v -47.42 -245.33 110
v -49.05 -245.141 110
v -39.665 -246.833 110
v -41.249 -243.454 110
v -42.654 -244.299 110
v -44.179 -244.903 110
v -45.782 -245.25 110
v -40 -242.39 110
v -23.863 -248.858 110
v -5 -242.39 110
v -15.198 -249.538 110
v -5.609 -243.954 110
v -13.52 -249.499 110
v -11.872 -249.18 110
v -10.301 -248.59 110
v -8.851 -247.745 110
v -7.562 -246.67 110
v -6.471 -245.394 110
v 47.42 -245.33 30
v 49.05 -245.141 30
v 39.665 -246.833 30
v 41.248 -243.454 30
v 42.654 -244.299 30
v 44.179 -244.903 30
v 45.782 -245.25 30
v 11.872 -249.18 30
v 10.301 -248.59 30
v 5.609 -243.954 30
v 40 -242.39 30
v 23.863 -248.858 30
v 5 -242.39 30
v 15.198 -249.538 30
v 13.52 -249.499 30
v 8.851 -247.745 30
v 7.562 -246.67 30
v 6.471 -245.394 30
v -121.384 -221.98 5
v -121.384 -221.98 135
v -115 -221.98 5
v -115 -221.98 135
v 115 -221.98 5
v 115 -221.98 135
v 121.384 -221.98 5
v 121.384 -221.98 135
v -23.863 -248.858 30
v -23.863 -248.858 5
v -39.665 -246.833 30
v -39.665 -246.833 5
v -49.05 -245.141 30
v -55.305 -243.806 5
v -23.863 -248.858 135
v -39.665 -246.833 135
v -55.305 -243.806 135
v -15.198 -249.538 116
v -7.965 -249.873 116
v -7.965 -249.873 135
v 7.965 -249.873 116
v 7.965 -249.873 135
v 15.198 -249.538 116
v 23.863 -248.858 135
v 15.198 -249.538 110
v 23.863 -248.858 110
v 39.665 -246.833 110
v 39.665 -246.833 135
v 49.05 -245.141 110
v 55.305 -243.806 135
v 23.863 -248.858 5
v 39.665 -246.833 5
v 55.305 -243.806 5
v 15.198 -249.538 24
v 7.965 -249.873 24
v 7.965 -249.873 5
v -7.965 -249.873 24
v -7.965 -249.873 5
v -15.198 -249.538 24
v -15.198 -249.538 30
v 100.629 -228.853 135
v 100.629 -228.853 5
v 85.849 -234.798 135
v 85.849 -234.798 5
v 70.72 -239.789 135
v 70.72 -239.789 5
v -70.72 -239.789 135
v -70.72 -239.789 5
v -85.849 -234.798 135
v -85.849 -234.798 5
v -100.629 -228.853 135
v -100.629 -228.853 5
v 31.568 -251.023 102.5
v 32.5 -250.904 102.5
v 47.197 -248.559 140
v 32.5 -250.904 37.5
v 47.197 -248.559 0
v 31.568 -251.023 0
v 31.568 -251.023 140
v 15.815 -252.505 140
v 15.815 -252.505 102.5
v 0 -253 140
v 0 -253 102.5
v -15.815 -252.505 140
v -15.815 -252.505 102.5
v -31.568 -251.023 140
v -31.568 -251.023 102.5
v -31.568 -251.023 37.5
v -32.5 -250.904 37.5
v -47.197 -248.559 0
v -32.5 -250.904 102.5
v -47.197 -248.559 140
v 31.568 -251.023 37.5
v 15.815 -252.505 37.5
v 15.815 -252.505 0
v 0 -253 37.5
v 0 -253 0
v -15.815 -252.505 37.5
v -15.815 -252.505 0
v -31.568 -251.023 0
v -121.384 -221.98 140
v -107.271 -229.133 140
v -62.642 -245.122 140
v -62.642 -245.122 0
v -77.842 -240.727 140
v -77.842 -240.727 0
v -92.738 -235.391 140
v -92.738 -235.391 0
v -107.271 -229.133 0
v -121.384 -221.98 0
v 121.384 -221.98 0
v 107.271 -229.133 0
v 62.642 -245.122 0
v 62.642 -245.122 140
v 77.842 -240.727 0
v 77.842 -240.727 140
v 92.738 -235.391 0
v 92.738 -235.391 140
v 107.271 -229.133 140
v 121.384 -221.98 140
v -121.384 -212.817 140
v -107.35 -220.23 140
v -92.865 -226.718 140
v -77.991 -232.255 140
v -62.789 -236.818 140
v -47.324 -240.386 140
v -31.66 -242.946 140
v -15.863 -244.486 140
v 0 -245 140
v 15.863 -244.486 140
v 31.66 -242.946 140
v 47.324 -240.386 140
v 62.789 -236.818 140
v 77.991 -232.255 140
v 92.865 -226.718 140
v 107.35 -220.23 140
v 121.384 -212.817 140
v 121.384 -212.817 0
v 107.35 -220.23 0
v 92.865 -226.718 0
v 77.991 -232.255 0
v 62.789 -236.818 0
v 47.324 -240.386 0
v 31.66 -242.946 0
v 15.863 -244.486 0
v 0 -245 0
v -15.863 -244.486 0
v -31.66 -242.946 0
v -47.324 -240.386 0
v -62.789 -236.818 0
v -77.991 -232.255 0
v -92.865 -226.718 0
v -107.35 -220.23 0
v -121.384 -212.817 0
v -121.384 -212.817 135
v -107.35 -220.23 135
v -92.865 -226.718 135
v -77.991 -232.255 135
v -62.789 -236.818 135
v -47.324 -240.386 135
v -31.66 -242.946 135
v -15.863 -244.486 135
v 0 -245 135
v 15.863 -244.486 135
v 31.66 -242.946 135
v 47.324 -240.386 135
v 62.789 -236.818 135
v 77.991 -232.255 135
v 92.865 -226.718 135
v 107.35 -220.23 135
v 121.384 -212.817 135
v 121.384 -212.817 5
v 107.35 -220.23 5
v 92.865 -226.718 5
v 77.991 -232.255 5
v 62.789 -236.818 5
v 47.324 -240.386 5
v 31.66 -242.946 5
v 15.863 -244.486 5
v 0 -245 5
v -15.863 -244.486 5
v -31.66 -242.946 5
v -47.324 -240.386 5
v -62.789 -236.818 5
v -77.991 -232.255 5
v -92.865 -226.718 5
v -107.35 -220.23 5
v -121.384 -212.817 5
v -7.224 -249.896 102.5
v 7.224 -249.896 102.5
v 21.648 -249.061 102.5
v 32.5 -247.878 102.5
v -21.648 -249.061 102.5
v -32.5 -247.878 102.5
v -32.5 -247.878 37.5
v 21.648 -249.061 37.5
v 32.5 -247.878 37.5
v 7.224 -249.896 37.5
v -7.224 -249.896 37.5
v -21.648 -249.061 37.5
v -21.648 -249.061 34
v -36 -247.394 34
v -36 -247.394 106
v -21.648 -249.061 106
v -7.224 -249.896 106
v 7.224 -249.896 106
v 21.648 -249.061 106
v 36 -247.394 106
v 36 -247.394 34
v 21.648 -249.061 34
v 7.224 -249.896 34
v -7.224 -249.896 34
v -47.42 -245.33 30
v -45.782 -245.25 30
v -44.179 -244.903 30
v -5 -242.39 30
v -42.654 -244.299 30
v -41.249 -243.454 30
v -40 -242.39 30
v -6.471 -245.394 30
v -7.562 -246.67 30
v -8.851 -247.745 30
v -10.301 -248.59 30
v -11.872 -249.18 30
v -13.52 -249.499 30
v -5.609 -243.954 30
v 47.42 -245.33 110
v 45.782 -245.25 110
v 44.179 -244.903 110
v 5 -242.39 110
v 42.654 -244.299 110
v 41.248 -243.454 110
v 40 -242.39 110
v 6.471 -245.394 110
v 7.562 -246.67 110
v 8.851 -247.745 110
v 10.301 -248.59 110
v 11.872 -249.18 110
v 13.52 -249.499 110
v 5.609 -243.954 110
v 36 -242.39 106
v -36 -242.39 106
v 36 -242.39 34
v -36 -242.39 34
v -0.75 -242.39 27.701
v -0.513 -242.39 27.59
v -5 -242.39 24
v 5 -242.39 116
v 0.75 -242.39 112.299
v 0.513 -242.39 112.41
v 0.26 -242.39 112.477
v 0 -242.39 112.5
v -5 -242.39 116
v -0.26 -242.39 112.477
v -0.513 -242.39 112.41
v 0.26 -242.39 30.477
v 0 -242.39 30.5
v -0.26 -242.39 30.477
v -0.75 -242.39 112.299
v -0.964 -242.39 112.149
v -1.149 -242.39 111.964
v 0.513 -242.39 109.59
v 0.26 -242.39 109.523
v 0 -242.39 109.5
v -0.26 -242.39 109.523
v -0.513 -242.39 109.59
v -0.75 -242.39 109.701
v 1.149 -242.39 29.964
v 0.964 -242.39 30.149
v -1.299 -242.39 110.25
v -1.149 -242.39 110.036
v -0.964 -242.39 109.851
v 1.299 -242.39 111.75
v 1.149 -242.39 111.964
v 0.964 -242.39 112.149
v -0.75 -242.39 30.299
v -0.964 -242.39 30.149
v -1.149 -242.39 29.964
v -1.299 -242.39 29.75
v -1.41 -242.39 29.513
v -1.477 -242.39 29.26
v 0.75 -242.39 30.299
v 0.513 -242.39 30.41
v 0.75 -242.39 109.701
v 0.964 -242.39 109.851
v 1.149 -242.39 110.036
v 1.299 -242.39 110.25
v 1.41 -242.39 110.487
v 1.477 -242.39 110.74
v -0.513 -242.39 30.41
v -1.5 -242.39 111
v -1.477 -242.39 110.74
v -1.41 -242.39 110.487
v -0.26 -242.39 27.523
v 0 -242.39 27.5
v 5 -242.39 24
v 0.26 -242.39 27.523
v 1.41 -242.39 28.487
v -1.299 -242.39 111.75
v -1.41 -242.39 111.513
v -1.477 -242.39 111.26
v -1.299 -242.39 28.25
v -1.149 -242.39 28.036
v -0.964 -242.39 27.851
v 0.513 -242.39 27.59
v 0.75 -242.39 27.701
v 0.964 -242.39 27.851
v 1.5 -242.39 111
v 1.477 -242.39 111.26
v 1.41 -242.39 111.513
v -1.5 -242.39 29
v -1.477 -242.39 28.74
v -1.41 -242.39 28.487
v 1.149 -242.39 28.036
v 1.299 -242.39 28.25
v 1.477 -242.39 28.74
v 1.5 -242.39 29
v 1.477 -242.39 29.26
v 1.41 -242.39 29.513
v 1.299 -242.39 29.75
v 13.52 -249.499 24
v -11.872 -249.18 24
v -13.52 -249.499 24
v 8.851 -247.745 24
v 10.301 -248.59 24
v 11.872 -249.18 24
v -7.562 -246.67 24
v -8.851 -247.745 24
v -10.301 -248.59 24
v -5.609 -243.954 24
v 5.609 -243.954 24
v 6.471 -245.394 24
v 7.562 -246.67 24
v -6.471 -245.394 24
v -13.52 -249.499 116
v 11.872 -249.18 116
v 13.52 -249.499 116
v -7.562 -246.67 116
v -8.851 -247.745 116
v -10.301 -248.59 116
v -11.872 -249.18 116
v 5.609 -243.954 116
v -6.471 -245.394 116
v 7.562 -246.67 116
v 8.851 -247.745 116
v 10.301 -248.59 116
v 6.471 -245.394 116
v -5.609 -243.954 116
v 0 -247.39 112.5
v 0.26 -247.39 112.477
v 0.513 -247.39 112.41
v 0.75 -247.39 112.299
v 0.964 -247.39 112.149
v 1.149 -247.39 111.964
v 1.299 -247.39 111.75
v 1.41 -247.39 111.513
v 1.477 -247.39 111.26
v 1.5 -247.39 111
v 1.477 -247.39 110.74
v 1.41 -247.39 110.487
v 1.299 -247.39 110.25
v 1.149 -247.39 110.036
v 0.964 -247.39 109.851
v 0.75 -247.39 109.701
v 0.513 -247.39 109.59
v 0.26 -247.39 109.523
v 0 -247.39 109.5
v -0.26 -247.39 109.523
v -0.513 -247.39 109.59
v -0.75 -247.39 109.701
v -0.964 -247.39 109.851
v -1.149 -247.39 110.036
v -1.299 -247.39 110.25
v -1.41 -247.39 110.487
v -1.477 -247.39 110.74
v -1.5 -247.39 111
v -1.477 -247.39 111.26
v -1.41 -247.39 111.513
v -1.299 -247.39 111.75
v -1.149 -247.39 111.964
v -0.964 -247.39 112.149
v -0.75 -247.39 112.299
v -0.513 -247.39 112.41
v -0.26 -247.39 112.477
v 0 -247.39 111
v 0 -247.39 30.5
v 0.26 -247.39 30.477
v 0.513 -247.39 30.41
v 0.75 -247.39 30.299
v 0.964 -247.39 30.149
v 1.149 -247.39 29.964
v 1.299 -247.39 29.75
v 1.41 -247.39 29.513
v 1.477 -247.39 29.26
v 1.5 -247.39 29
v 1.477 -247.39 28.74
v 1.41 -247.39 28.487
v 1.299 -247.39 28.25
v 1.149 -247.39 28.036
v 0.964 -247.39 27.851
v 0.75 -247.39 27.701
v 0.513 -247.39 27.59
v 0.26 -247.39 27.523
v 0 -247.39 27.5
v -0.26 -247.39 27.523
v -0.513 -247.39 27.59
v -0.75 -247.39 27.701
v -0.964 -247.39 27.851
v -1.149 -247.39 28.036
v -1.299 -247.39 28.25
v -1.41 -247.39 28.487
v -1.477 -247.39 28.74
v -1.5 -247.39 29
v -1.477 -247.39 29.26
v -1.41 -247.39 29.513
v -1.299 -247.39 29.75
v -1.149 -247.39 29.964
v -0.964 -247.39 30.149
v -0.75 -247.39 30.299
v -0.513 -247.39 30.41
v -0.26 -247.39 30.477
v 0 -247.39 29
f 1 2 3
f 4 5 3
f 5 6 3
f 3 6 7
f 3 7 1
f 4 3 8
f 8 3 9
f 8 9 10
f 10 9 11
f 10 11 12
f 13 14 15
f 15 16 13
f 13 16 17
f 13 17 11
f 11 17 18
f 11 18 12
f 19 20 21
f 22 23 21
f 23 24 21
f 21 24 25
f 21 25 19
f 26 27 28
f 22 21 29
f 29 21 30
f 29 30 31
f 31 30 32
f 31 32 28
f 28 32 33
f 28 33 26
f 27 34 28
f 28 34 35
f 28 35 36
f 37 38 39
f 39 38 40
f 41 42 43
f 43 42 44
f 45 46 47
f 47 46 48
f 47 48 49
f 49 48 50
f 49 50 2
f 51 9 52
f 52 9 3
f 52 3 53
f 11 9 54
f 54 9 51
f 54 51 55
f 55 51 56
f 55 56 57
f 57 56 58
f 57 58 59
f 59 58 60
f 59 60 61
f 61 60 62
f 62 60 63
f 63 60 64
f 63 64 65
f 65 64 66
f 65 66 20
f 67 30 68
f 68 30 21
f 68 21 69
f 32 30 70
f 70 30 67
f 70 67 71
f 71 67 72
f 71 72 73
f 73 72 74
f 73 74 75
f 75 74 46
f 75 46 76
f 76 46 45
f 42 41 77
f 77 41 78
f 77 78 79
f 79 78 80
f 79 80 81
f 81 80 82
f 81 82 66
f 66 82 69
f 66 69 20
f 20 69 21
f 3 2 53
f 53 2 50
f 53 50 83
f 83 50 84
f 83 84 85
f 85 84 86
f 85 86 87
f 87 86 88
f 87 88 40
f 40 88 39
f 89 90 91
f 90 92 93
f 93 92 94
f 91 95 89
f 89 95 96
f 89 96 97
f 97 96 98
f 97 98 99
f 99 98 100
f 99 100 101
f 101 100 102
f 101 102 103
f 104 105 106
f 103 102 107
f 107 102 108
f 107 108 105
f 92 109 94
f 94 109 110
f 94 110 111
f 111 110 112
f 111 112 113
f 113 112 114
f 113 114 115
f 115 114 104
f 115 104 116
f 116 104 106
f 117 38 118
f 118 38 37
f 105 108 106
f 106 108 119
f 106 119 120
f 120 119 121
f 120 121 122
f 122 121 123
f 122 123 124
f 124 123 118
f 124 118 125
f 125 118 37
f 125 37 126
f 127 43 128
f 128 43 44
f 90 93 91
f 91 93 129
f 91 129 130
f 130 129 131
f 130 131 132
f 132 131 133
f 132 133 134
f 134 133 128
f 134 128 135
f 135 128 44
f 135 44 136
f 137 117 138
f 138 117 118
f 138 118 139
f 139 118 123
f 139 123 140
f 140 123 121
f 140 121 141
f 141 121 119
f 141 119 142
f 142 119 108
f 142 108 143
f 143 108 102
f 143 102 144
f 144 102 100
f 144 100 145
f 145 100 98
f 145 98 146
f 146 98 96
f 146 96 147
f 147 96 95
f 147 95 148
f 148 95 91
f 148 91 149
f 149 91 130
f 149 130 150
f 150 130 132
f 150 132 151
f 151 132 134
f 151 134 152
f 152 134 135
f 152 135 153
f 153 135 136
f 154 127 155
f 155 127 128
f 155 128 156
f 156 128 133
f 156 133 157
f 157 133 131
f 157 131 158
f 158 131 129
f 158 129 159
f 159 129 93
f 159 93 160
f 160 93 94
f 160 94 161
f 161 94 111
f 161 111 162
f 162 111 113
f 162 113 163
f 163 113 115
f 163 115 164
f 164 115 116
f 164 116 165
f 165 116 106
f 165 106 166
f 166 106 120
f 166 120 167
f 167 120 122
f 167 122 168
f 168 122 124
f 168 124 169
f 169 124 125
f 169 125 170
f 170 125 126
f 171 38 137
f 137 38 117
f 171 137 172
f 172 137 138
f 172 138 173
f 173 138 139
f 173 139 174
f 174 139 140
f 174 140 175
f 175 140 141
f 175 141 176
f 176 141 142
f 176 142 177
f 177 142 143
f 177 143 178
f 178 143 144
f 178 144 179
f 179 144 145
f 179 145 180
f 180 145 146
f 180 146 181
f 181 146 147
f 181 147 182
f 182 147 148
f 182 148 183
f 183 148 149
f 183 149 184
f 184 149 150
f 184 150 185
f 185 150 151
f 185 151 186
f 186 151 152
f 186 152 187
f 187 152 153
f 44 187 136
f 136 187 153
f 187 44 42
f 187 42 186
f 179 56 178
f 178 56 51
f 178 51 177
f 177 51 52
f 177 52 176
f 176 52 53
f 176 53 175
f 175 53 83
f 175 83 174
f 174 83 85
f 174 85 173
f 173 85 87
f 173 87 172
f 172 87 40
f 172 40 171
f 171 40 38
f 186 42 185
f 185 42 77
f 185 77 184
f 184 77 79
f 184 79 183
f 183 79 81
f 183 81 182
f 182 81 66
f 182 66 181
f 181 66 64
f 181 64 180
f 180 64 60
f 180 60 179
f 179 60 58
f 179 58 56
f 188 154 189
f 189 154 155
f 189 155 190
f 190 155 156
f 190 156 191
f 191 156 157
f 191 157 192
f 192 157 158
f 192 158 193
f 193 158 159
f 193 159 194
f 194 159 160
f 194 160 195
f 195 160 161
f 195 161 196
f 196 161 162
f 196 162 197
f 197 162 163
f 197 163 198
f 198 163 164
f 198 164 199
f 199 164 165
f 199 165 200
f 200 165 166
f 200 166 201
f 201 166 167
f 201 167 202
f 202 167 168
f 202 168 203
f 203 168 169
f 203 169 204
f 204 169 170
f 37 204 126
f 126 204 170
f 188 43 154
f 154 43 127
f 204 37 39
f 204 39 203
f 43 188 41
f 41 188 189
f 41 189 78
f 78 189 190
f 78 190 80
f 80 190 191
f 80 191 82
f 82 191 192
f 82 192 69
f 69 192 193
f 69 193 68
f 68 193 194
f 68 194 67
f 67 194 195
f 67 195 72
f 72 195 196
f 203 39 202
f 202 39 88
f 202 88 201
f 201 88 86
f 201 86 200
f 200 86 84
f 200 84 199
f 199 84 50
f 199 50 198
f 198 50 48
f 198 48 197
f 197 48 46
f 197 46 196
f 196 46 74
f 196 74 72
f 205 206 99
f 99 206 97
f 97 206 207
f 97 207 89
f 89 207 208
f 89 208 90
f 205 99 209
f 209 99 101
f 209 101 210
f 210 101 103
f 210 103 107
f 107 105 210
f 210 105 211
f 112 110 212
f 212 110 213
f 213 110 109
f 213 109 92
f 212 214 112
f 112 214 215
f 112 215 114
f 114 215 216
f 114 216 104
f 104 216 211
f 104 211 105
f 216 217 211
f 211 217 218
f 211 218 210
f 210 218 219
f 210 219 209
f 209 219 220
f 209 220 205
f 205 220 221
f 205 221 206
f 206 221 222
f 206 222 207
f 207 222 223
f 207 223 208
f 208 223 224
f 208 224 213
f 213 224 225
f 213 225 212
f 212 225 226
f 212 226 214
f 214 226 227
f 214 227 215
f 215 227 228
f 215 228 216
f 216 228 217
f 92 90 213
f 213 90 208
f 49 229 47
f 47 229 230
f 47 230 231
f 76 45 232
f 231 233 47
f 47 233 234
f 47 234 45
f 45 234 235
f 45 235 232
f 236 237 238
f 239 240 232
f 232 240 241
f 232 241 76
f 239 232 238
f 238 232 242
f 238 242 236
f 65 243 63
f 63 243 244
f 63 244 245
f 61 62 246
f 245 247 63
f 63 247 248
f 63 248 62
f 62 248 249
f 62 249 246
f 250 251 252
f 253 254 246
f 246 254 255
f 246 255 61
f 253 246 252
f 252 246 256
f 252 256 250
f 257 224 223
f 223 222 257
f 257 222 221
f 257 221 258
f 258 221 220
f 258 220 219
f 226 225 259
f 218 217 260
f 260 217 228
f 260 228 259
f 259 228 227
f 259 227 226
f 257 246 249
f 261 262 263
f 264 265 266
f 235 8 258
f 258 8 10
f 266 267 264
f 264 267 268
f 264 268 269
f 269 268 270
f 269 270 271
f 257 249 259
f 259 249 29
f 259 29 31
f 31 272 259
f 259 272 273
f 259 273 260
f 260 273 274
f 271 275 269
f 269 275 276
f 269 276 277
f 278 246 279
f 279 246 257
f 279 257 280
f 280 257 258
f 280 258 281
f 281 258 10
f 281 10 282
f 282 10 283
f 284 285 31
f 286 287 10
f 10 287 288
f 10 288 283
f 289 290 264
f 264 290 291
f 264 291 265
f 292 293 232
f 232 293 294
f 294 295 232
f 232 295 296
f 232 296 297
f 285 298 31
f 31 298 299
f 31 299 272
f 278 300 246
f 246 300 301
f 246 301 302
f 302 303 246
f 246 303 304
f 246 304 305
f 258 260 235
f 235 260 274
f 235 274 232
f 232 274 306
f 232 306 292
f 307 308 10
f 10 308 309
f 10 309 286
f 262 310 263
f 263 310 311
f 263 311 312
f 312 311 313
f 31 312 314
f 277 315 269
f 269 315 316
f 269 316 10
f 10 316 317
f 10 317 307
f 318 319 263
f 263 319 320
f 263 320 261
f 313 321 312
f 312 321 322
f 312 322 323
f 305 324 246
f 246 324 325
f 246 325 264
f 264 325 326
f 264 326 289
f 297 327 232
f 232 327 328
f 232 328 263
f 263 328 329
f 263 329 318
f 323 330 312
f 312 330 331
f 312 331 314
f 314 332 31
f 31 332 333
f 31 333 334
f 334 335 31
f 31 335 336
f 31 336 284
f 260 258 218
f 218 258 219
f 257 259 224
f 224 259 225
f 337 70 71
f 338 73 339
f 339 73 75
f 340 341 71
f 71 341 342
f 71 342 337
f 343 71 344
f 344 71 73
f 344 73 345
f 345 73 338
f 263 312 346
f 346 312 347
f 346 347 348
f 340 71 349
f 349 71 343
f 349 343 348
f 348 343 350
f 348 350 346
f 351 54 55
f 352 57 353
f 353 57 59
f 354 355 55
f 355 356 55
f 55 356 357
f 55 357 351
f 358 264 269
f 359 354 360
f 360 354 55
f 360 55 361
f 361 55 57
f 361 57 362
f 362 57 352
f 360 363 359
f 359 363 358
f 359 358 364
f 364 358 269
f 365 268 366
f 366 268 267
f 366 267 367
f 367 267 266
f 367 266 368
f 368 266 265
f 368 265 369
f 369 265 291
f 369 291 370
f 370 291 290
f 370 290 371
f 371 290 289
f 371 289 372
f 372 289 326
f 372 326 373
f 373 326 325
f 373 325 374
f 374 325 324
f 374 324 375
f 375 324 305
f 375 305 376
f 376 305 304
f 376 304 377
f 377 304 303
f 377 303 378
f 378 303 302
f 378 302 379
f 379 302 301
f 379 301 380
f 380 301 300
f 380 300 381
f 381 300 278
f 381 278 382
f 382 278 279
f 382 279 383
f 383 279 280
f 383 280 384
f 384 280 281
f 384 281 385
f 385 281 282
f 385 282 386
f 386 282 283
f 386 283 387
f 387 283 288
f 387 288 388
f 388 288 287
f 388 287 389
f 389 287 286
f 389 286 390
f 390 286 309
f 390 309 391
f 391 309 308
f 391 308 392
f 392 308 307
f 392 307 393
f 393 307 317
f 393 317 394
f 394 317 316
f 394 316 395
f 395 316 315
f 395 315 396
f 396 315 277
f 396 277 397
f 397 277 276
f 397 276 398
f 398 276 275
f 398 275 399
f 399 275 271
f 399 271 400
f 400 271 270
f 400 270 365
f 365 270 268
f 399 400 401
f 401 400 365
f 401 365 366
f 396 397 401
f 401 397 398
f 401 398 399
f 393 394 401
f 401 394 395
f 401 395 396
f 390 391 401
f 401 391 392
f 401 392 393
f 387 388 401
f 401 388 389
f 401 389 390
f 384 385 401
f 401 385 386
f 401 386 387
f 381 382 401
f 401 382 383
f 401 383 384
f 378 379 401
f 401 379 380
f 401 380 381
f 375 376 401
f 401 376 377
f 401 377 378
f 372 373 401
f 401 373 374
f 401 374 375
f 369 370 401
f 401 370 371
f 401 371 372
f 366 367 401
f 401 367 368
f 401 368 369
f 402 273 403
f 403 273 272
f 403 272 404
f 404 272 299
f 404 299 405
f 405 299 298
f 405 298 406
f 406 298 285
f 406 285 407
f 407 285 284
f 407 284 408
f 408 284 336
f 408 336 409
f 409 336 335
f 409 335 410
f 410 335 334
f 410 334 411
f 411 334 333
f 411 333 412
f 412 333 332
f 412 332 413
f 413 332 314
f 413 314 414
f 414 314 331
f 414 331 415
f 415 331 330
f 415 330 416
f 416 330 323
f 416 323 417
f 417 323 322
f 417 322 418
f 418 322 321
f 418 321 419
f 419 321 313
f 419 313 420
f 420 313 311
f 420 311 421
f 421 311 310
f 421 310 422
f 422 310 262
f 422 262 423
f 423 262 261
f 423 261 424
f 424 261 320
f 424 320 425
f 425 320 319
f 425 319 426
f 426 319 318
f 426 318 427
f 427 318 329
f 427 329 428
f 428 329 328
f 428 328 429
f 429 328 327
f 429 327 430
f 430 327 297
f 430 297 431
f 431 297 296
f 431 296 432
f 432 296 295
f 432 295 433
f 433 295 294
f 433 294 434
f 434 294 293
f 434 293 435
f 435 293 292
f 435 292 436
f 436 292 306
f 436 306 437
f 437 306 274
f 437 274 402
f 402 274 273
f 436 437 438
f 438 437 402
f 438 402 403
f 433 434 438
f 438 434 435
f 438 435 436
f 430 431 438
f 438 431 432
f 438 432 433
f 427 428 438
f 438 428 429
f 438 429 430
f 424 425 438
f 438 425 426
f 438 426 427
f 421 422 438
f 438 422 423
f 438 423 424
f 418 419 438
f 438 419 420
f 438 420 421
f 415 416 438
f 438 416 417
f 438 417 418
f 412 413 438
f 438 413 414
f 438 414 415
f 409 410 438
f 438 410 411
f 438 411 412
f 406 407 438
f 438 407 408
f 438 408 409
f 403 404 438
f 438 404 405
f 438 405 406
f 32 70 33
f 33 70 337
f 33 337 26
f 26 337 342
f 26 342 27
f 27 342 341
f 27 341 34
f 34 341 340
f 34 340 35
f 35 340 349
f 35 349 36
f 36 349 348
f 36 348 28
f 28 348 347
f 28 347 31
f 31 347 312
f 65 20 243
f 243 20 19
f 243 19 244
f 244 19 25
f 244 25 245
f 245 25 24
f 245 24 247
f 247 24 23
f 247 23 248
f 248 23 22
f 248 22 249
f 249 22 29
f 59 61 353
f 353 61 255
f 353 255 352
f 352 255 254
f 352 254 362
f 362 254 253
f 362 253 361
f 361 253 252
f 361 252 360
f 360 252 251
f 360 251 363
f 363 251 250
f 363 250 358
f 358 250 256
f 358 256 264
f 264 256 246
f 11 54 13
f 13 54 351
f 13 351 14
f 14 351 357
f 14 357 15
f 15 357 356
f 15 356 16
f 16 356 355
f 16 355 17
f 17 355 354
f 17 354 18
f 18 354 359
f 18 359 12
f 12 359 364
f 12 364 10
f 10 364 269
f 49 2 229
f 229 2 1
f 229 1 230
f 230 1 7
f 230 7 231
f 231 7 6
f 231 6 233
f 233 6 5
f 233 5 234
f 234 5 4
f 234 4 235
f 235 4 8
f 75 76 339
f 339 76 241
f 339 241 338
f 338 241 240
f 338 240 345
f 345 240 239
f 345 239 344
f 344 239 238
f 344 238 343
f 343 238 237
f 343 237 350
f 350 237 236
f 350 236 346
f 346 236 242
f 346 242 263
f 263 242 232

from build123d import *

# Parameters (mm, degrees)
ESTRUSIONE_ESTRUSIONE1_DEPTH = 140
ESTRUSIONE_ESTRUSIONE2_START = -5
ESTRUSIONE_ESTRUSIONE2_DEPTH = 5
ESTRUSIONE_ESTRUSIONE3_DEPTH = 5
SCHIZZO4_W                   = 65
SCHIZZO4_H                   = 65
TAGLIO_ESTRUSIONE1_DEPTH     = 190.601391721
SCHIZZO6_W                   = 80
SCHIZZO6_H                   = 80
SCHIZZO6_W_2                 = 72
SCHIZZO6_H_2                 = 72
ESTRUSIONE_ESTRUSIONE5_DEPTH = 10.61
SCHIZZO8_W                   = 10
SCHIZZO8_H                   = 6
ESTRUSIONE_ESTRUSIONE6_DEPTH = 8
SCHIZZO9_R                   = 1.5
TAGLIO_ESTRUSIONE2_DEPTH     = 5
TAGLIO_ESTRUSIONE3_DEPTH     = 314.596874984
RACCORDO1_R                  = 10


with BuildPart() as part:
    # Schizzo1 → Estrusione-Estrusione1 (new body)
    with BuildSketch(Plane.XY):
        with BuildLine():
            Line((121.383689184, -221.979728804), (115, -221.979728804))
            ThreePointArc((115, -221.979728804), (0, -250), (-115, -221.979728804))
            Line((-115, -221.979728804), (-121.383689184, -221.979728804))
            ThreePointArc((-121.383689184, -221.979728804), (0, -253), (121.383689184, -221.979728804))
        make_face()
    extrude(amount=ESTRUSIONE_ESTRUSIONE1_DEPTH)

    # Schizzo2 → Estrusione-Estrusione2 (add)
    with BuildSketch(Plane.XY.offset(140).offset(ESTRUSIONE_ESTRUSIONE2_START)):
        with BuildLine():
            Line((-121.383689184, -218.554341069), (-121.383689184, -221.979728804))
            Line((-121.383689184, -221.979728804), (-115, -221.979728804))
            ThreePointArc((-115, -221.979728804), (-118.204253089, -220.290159906), (-121.383689184, -218.554341069))
        make_face()
        with BuildLine():
            Line((-121.383689184, -212.816822643), (-121.383689184, -218.554341069))
            ThreePointArc((-121.383689184, -218.554341069), (-118.204253089, -220.290159906), (-115, -221.979728804))
            ThreePointArc((-115, -221.979728804), (0, -250), (115, -221.979728804))
            ThreePointArc((115, -221.979728804), (118.204253089, -220.290159906), (121.383689184, -218.554341069))
            Line((121.383689184, -218.554341069), (121.383689184, -212.816822643))
            ThreePointArc((121.383689184, -212.816822643), (0, -245), (-121.383689184, -212.816822643))
        make_face()
        with BuildLine():
            Line((115, -221.979728804), (121.383689184, -221.979728804))
            Line((121.383689184, -221.979728804), (121.383689184, -218.554341069))
            ThreePointArc((121.383689184, -218.554341069), (118.204253089, -220.290159906), (115, -221.979728804))
        make_face()
    extrude(amount=ESTRUSIONE_ESTRUSIONE2_DEPTH)

    # Schizzo3 → Estrusione-Estrusione3 (add)
    with BuildSketch(Plane(origin=(0, 0, 0), x_dir=(-1, 0, 0), z_dir=(0, 0, -1))):
        with BuildLine():
            Line((-121.383689184, -212.816822643), (-121.383689184, -218.554341069))
            ThreePointArc((-121.383689184, -218.554341069), (-118.204253089, -220.290159906), (-115, -221.979728804))
            ThreePointArc((-115, -221.979728804), (0, -250), (115, -221.979728804))
            ThreePointArc((115, -221.979728804), (118.204253089, -220.290159906), (121.383689184, -218.554341069))
            Line((121.383689184, -218.554341069), (121.383689184, -212.816822643))
            ThreePointArc((121.383689184, -212.816822643), (0, -245), (-121.383689184, -212.816822643))
        make_face()
        with BuildLine():
            Line((115, -221.979728804), (121.383689184, -221.979728804))
            Line((121.383689184, -221.979728804), (121.383689184, -218.554341069))
            ThreePointArc((121.383689184, -218.554341069), (118.204253089, -220.290159906), (115, -221.979728804))
        make_face()
        with BuildLine():
            Line((-121.383689184, -218.554341069), (-121.383689184, -221.979728804))
            Line((-121.383689184, -221.979728804), (-115, -221.979728804))
            ThreePointArc((-115, -221.979728804), (-118.204253089, -220.290159906), (-121.383689184, -218.554341069))
        make_face()
    extrude(amount=-ESTRUSIONE_ESTRUSIONE3_DEPTH)

    # Schizzo4 → Taglio-Estrusione1 (cut, through all)
    with BuildSketch(Plane(origin=(0, -253, 0), x_dir=(-1, 0, 0), z_dir=(0, -1, 0))):
        with Locations((0, -70)):
            Rectangle(SCHIZZO4_W, SCHIZZO4_H)
    extrude(amount=-TAGLIO_ESTRUSIONE1_DEPTH, mode=Mode.SUBTRACT)

    # Schizzo6 → Estrusione-Estrusione5 (add)
    with BuildSketch(Plane(origin=(0, -253, 0), x_dir=(-1, 0, 0), z_dir=(0, -1, 0))):
        with Locations((0, -70)):
            Rectangle(SCHIZZO6_W, SCHIZZO6_H)
        with Locations((0, -70)):
            Rectangle(SCHIZZO6_W_2, SCHIZZO6_H_2, mode=Mode.SUBTRACT)
    extrude(amount=-ESTRUSIONE_ESTRUSIONE5_DEPTH)

    # Schizzo8 → Estrusione-Estrusione6 (add)
    with BuildSketch(Plane(origin=(0, -242.39, 0), x_dir=(1, 0, 0), z_dir=(0, 1, 0))):
        with Locations((0, -27)):
            Rectangle(SCHIZZO8_W, SCHIZZO8_H)
        with Locations((0, -113)):
            Rectangle(SCHIZZO8_W, SCHIZZO8_H)
    extrude(amount=-ESTRUSIONE_ESTRUSIONE6_DEPTH)

    # Schizzo9 → Taglio-Estrusione2 (cut)
    with BuildSketch(Plane(origin=(0, -242.39, 0), x_dir=(1, 0, 0), z_dir=(0, 1, 0))):
        with Locations(Location((0, -29, 0), (0, 0, 270))):
            Circle(SCHIZZO9_R)
        with Locations(Location((0, -111, 0), (0, 0, 270))):
            Circle(SCHIZZO9_R)
    extrude(amount=-TAGLIO_ESTRUSIONE2_DEPTH, mode=Mode.SUBTRACT)

    # Schizzo10 → Taglio-Estrusione3 (cut, through all)
    with BuildSketch(Plane(origin=(0, 0, 0), x_dir=(-1, 0, 0), z_dir=(0, 0, -1))):
        with BuildLine():
            Line((-121.383689184, -295.114305534), (125.369855002, -295.114305534))
            Line((125.369855002, -295.114305534), (121.383689184, -221.979728804))
            ThreePointArc((121.383689184, -221.979728804), (0, -253), (-121.383689184, -221.979728804))
            Line((-121.383689184, -221.979728804), (-121.383689184, -295.114305534))
        make_face()
    extrude(amount=-TAGLIO_ESTRUSIONE3_DEPTH, mode=Mode.SUBTRACT)

    # Raccordo1
    # the kernel refuses this fillet: 10 mm, written as the material it adds along each edge
    with BuildSketch(Plane(origin=(5, -249.949994999, 55.515759856), x_dir=(0.999183410527211, 0.04040435777500708, 0), z_dir=(0, 0, -1))) as raccordo1_piece_1_section:
        with BuildLine():
            CenterArc((10.002177863, -9.99791641), RACCORDO1_R, 88.830362483, 77.02269885)
            Line((0.305456743, -7.553821587), (0, 0))
            ThreePointArc((0, 0), (5.103151971, 0.052089747), (10.206303942, 0))
        make_face()
    raccordo1_piece_1 = extrude(amount=31.515759856, mode=Mode.PRIVATE)
    raccordo1_piece_1 = split(raccordo1_piece_1, bisect_by=Plane(origin=(10.036552928, -248.481695624, 34), z_dir=(0, 0, -1)), keep=Keep.TOP, mode=Mode.PRIVATE)
    add(raccordo1_piece_1)
    with BuildSketch(Plane(origin=(40, -246.779253585, 110), x_dir=(0.9840071168859134, 0.17812914954569523, 0), z_dir=(0, 0, -1))) as raccordo1_piece_2:
        with BuildLine():
            CenterArc((9.012656027, -9.998308312), RACCORDO1_R, 88.946089238, 56.448243915)
            Line((0.781854008, -4.319056766), (0, 0))
            ThreePointArc((0, 0), (4.598293891, 0.042292191), (9.196587782, 0))
        make_face()
    extrude(amount=80)
    with BuildSketch(Plane(origin=(5, -249.949994999, 116), x_dir=(0.9991834105272109, 0.04040435777500963, 0), z_dir=(0, 0, -1))) as raccordo1_piece_3_section:
        with BuildLine():
            CenterArc((10.002177863, -9.99791641), RACCORDO1_R, 88.830362483, 77.02269885)
            Line((0.305456743, -7.553821587), (0, 0))
            ThreePointArc((0, 0), (5.103151971, 0.052089747), (10.206303942, 0))
        make_face()
    raccordo1_piece_3 = extrude(amount=31.515759856, mode=Mode.PRIVATE)
    raccordo1_piece_3 = split(raccordo1_piece_3, bisect_by=Plane(origin=(10.036552928, -248.481695624, 106), z_dir=(0, 0, 1)), keep=Keep.TOP, mode=Mode.PRIVATE)
    add(raccordo1_piece_3)
    with BuildSketch(Plane(origin=(-5, -249.949994999, 116), x_dir=(-0.9991834105272109, 0.04040435777501259, 0), z_dir=(0, 0, -1))) as raccordo1_piece_4_section:
        with BuildLine():
            CenterArc((10.002177863, 9.99791641), RACCORDO1_R, 194.146938667, 77.02269885)
            Line((0.305456743, 7.553821587), (0, 0))
            ThreePointArc((0, 0), (5.103151971, -0.052089747), (10.206303942, 0))
        make_face()
    raccordo1_piece_4 = extrude(amount=31.515759856, mode=Mode.PRIVATE)
    raccordo1_piece_4 = split(raccordo1_piece_4, bisect_by=Plane(origin=(-10.036552928, -248.481695624, 106), z_dir=(0, 0, 1)), keep=Keep.TOP, mode=Mode.PRIVATE)
    add(raccordo1_piece_4)
    with BuildSketch(Plane(origin=(-40, -246.779253585, 110), x_dir=(-0.9840071168859144, 0.17812914954568923, 0), z_dir=(0, 0, -1))) as raccordo1_piece_5:
        with BuildLine():
            CenterArc((9.012656027, 9.998308312), RACCORDO1_R, 214.605666847, 56.448243915)
            Line((0.781854008, 4.319056766), (0, 0))
            ThreePointArc((0, 0), (4.598293891, -0.042292191), (9.196587782, 0))
        make_face()
    extrude(amount=80)
    with BuildSketch(Plane(origin=(-5, -249.949994999, 55.515759856), x_dir=(-0.9991834105272107, 0.040404357775012466, 0), z_dir=(0, 0, -1))) as raccordo1_piece_6_section:
        with BuildLine():
            CenterArc((10.002177863, 9.99791641), RACCORDO1_R, 194.146938667, 77.02269885)
            Line((0.305456743, 7.553821587), (0, 0))
            ThreePointArc((0, 0), (5.103151971, -0.052089747), (10.206303942, 0))
        make_face()
    raccordo1_piece_6 = extrude(amount=31.515759856, mode=Mode.PRIVATE)
    raccordo1_piece_6 = split(raccordo1_piece_6, bisect_by=Plane(origin=(-10.036552928, -248.481695624, 34), z_dir=(0, 0, -1)), keep=Keep.TOP, mode=Mode.PRIVATE)
    add(raccordo1_piece_6)


solid = part.part
